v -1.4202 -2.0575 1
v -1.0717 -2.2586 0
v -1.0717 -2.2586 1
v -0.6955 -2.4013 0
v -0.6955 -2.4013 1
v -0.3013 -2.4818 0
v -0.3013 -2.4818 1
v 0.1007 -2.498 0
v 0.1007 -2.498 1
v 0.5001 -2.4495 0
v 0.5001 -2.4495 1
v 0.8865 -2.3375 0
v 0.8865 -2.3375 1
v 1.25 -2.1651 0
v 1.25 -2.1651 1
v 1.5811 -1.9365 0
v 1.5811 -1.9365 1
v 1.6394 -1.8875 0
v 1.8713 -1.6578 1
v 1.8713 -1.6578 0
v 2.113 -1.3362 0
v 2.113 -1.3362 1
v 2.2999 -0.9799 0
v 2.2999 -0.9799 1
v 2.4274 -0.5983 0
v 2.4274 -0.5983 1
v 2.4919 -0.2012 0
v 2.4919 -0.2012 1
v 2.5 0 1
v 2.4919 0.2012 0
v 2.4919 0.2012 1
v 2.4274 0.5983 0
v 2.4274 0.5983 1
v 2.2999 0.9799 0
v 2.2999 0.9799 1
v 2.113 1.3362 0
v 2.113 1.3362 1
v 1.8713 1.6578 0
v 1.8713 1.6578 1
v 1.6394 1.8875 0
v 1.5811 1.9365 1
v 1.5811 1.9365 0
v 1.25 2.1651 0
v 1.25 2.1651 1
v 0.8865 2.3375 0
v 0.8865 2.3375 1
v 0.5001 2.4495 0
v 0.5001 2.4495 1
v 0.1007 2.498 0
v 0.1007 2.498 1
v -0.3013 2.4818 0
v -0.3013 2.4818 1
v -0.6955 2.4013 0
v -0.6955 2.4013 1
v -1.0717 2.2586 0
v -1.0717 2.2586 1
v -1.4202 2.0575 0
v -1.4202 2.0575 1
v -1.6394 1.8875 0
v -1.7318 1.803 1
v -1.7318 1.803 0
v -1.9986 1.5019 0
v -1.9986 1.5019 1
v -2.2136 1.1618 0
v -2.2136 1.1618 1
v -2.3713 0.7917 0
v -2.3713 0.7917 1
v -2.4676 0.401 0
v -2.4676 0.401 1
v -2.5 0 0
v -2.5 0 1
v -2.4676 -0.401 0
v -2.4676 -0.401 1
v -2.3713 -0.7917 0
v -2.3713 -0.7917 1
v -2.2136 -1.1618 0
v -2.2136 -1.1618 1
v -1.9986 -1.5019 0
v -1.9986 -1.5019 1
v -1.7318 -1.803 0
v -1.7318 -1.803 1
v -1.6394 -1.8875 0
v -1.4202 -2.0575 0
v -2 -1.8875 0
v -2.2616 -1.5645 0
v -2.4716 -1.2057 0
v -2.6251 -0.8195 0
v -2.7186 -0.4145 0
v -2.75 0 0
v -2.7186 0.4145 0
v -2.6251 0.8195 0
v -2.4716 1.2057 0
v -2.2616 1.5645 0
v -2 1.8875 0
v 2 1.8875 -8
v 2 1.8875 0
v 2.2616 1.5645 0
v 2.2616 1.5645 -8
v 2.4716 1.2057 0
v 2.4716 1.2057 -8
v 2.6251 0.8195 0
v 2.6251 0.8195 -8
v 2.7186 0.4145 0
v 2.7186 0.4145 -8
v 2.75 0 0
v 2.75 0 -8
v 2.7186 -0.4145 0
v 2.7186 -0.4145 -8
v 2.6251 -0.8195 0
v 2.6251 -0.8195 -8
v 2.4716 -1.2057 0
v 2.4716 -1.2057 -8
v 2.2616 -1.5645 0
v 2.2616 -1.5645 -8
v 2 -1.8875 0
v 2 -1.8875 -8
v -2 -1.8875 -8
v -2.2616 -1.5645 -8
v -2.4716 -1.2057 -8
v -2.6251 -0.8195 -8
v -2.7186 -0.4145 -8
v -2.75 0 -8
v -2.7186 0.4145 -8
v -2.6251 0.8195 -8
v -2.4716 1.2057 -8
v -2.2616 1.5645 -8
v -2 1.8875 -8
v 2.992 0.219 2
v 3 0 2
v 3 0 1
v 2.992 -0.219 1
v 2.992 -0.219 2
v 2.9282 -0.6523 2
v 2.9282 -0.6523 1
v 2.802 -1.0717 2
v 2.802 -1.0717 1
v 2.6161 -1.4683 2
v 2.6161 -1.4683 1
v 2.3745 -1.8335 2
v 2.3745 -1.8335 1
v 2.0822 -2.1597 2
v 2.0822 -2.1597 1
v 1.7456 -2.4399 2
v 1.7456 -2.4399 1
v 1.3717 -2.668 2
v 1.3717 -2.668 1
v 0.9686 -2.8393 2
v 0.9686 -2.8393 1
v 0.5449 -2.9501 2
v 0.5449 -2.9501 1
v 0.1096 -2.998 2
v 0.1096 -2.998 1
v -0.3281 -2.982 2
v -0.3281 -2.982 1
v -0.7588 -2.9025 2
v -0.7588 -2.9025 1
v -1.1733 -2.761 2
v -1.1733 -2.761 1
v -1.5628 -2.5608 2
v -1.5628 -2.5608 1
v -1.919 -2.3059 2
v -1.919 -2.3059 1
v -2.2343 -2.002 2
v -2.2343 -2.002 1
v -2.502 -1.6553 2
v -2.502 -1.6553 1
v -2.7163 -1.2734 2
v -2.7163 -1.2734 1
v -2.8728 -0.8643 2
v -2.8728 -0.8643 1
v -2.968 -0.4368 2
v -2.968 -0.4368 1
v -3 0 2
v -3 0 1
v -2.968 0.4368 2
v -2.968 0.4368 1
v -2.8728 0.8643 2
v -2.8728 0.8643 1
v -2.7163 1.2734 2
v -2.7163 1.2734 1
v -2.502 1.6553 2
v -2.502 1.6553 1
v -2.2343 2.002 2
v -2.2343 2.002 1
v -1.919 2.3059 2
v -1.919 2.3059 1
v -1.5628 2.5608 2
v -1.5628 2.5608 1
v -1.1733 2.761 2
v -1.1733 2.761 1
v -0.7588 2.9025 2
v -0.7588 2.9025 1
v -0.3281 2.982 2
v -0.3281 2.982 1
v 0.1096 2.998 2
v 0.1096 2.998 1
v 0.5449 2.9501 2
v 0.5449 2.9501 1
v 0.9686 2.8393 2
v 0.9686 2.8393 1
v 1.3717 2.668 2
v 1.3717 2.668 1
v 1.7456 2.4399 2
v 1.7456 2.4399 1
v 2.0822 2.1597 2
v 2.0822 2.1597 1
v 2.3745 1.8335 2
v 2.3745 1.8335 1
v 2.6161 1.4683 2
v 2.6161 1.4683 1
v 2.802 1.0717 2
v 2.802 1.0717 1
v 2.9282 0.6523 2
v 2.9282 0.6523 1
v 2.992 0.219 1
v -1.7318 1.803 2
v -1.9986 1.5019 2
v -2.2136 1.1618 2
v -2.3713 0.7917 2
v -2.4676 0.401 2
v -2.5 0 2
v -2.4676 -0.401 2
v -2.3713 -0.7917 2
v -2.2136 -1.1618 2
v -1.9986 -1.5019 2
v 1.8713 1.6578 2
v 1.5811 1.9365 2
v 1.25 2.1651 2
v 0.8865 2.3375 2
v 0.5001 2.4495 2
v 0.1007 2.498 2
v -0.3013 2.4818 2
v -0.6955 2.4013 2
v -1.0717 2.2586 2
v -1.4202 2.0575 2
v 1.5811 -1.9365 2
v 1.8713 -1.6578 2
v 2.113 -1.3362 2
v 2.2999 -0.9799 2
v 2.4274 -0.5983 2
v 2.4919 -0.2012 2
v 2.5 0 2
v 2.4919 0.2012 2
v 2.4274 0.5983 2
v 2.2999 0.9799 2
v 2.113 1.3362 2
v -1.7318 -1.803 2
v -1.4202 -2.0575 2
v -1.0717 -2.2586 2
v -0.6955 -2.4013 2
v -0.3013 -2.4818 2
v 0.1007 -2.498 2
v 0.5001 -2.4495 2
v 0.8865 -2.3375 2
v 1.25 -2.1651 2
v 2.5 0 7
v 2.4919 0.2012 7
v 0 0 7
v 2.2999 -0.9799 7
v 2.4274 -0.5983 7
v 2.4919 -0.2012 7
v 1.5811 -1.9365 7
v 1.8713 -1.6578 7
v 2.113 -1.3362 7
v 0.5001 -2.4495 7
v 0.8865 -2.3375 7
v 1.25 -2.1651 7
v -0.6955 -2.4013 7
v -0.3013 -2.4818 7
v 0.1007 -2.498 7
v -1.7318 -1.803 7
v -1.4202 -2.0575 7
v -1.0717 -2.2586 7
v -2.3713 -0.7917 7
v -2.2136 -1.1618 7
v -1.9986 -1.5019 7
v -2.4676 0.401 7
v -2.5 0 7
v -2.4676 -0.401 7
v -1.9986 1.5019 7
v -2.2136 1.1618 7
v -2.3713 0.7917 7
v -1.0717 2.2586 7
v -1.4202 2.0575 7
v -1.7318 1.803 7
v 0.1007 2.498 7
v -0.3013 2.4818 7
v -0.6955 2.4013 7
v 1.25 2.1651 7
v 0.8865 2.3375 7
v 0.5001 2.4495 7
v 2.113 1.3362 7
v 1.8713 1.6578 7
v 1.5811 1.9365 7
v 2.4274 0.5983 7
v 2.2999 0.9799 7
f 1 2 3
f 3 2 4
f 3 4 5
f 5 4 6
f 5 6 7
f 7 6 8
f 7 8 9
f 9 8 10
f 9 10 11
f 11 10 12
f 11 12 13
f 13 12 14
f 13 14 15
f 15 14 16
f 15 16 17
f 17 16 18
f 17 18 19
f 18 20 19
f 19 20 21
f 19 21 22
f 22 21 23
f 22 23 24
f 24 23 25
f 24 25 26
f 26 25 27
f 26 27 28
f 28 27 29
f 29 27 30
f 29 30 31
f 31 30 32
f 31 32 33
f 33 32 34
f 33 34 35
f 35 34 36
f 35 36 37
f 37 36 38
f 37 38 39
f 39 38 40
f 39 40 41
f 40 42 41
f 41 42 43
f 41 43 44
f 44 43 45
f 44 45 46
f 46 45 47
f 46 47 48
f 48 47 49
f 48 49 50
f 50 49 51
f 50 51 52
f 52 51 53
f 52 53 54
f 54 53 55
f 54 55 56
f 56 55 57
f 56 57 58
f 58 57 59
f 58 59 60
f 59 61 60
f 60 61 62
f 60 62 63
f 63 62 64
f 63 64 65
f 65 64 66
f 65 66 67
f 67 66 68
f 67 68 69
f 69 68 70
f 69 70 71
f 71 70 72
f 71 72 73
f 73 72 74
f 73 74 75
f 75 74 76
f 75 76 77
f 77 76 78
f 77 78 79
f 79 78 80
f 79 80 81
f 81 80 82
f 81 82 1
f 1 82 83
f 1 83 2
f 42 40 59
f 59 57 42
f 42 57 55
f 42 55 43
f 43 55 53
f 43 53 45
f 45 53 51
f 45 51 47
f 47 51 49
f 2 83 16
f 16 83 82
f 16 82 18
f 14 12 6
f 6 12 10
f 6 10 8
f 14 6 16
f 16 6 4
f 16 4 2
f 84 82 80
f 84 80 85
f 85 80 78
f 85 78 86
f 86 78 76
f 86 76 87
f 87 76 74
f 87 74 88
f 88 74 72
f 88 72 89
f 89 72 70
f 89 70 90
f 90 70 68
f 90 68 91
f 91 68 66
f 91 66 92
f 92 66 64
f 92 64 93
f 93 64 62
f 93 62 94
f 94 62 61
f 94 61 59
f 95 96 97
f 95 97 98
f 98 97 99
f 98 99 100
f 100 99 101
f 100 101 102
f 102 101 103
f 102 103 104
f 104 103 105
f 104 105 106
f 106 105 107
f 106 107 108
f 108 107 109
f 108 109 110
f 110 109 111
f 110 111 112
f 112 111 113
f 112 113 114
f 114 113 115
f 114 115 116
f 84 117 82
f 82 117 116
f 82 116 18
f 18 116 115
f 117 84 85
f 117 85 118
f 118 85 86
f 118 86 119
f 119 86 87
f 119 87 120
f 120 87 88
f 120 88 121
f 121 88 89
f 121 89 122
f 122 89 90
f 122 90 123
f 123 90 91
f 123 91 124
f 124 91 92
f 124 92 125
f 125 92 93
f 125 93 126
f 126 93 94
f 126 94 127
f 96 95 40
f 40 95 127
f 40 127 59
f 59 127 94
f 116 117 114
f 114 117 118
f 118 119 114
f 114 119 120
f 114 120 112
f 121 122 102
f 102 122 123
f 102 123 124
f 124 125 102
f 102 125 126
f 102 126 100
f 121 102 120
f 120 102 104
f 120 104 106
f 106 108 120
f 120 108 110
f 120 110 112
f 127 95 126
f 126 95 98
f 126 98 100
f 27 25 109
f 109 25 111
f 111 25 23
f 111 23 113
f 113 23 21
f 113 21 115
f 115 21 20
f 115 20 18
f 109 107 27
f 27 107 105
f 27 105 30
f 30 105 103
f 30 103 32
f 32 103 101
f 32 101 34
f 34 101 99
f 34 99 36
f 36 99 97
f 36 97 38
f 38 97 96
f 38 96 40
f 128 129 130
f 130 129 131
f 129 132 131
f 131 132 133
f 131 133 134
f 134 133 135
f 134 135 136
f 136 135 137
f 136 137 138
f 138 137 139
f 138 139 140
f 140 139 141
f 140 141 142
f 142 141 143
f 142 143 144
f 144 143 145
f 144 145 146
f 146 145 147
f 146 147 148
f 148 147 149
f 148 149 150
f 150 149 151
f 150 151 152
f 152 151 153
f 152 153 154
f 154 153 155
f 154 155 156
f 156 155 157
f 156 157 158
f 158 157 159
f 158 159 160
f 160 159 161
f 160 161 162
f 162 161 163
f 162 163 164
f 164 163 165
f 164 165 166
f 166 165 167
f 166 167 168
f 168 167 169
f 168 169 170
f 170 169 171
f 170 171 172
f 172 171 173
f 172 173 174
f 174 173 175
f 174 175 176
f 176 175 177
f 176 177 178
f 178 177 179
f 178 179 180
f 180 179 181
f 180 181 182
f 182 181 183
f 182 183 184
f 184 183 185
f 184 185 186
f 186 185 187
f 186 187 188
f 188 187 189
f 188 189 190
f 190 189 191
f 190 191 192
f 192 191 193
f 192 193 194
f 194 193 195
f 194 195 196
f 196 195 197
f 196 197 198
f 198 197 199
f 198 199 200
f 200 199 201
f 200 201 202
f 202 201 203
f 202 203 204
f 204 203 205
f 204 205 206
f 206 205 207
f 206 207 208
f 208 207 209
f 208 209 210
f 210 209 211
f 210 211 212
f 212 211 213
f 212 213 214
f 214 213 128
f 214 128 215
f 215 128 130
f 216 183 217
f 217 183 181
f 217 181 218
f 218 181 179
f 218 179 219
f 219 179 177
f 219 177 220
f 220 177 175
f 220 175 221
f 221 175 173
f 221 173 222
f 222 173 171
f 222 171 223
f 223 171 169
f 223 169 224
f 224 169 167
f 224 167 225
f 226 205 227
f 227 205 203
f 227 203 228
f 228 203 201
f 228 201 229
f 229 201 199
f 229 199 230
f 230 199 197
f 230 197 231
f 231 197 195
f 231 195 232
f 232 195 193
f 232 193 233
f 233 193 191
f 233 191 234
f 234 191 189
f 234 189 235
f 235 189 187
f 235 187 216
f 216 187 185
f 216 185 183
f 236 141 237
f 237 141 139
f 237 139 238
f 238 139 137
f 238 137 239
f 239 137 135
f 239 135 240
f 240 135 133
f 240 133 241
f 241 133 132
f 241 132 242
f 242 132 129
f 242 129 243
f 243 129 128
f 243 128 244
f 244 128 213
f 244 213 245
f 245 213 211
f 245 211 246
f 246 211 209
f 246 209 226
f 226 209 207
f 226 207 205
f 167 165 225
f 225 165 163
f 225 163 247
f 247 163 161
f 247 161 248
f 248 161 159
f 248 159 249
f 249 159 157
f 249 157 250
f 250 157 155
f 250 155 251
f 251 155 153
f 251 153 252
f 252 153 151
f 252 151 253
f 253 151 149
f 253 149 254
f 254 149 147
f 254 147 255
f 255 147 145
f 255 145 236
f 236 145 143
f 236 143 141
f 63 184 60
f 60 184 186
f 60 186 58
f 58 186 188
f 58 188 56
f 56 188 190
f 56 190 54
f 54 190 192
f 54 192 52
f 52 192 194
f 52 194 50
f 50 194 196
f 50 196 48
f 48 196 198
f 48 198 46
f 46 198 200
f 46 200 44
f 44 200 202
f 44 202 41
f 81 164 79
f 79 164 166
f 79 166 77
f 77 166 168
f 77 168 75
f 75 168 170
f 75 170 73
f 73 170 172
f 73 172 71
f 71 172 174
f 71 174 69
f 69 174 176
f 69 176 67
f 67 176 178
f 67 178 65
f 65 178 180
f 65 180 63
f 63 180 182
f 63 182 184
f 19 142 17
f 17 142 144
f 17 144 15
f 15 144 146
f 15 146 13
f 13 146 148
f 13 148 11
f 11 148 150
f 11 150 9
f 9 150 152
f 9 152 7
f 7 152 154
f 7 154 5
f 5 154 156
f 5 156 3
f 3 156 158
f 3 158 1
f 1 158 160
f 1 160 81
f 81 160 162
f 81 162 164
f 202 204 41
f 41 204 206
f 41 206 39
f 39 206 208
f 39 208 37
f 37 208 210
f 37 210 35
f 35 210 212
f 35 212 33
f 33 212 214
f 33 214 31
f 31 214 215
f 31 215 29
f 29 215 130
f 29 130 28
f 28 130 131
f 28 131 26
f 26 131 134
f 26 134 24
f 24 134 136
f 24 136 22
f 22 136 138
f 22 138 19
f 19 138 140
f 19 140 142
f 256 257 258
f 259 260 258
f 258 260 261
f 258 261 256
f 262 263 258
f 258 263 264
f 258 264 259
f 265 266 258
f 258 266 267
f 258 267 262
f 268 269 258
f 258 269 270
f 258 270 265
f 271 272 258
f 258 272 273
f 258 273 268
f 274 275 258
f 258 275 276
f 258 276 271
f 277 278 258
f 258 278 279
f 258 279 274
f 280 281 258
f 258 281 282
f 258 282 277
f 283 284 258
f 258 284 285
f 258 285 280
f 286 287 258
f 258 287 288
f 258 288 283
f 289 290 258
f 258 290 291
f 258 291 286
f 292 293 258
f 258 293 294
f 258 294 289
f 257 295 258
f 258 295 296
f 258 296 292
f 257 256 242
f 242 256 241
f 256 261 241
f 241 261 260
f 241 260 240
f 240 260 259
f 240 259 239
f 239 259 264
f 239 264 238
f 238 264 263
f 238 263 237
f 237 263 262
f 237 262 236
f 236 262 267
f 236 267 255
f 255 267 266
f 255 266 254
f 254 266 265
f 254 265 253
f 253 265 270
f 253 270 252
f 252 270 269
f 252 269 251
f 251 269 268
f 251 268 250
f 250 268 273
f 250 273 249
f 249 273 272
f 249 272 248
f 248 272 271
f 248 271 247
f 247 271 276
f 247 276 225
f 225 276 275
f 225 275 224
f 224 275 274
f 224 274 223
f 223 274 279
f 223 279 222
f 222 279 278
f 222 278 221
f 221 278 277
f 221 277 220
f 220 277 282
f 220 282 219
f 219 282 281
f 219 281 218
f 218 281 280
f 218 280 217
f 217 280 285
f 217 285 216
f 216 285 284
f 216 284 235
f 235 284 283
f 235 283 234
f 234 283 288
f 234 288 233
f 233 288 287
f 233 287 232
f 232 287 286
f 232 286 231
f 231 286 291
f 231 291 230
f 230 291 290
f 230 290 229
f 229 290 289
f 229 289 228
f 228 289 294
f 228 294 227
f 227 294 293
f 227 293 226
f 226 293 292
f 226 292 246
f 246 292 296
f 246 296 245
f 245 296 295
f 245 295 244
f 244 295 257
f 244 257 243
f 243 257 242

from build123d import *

# Parameters (mm, degrees)
SKETCH_1_R      = 2.5
EXTRUDE_1_DEPTH = 6.2
EXTRUDE_2_DEPTH = 8
SKETCH_3_R      = 2.5
EXTRUDE_3_DEPTH = 0.8
EXTRUDE_START   = 1
SKETCH_4_R      = 3
EXTRUDE_4_DEPTH = 1


with BuildPart() as part:
    # 草图1 → 凸台-拉伸1 (new body)
    with BuildSketch(Plane.XY):
        with Locations(Location((0, 0, 0), (0, 0, 180))):
            Circle(SKETCH_1_R)
    extrude(amount=EXTRUDE_1_DEPTH)

    # 草图2 → 凸台-拉伸2 (add)
    with BuildSketch(Plane(origin=(0, 0, 0), x_dir=(-1, 0, 0), z_dir=(0, 0, -1))):
        with BuildLine():
            Line((-2, 1.887458609), (2, 1.887458609))
            ThreePointArc((2, 1.887458609), (2.75, 0), (2, -1.887458609))
            Line((2, -1.887458609), (-2, -1.887458609))
            ThreePointArc((-2, -1.887458609), (-2.75, 0), (-2, 1.887458609))
        make_face()
    extrude(amount=EXTRUDE_2_DEPTH)

    # 草图3 → 凸台-拉伸3 (add)
    with BuildSketch(Plane.XY.offset(6.2)):
        with Locations(Location((0, 0, 0), (0, 0, 130.976076876))):
            Circle(SKETCH_3_R)
    extrude(amount=EXTRUDE_3_DEPTH)

    # 草图4 → 凸台-拉伸4 (add)
    with BuildSketch(Plane.XY.offset(EXTRUDE_START)):
        Circle(SKETCH_4_R)
    extrude(amount=EXTRUDE_4_DEPTH)


solid = part.part
